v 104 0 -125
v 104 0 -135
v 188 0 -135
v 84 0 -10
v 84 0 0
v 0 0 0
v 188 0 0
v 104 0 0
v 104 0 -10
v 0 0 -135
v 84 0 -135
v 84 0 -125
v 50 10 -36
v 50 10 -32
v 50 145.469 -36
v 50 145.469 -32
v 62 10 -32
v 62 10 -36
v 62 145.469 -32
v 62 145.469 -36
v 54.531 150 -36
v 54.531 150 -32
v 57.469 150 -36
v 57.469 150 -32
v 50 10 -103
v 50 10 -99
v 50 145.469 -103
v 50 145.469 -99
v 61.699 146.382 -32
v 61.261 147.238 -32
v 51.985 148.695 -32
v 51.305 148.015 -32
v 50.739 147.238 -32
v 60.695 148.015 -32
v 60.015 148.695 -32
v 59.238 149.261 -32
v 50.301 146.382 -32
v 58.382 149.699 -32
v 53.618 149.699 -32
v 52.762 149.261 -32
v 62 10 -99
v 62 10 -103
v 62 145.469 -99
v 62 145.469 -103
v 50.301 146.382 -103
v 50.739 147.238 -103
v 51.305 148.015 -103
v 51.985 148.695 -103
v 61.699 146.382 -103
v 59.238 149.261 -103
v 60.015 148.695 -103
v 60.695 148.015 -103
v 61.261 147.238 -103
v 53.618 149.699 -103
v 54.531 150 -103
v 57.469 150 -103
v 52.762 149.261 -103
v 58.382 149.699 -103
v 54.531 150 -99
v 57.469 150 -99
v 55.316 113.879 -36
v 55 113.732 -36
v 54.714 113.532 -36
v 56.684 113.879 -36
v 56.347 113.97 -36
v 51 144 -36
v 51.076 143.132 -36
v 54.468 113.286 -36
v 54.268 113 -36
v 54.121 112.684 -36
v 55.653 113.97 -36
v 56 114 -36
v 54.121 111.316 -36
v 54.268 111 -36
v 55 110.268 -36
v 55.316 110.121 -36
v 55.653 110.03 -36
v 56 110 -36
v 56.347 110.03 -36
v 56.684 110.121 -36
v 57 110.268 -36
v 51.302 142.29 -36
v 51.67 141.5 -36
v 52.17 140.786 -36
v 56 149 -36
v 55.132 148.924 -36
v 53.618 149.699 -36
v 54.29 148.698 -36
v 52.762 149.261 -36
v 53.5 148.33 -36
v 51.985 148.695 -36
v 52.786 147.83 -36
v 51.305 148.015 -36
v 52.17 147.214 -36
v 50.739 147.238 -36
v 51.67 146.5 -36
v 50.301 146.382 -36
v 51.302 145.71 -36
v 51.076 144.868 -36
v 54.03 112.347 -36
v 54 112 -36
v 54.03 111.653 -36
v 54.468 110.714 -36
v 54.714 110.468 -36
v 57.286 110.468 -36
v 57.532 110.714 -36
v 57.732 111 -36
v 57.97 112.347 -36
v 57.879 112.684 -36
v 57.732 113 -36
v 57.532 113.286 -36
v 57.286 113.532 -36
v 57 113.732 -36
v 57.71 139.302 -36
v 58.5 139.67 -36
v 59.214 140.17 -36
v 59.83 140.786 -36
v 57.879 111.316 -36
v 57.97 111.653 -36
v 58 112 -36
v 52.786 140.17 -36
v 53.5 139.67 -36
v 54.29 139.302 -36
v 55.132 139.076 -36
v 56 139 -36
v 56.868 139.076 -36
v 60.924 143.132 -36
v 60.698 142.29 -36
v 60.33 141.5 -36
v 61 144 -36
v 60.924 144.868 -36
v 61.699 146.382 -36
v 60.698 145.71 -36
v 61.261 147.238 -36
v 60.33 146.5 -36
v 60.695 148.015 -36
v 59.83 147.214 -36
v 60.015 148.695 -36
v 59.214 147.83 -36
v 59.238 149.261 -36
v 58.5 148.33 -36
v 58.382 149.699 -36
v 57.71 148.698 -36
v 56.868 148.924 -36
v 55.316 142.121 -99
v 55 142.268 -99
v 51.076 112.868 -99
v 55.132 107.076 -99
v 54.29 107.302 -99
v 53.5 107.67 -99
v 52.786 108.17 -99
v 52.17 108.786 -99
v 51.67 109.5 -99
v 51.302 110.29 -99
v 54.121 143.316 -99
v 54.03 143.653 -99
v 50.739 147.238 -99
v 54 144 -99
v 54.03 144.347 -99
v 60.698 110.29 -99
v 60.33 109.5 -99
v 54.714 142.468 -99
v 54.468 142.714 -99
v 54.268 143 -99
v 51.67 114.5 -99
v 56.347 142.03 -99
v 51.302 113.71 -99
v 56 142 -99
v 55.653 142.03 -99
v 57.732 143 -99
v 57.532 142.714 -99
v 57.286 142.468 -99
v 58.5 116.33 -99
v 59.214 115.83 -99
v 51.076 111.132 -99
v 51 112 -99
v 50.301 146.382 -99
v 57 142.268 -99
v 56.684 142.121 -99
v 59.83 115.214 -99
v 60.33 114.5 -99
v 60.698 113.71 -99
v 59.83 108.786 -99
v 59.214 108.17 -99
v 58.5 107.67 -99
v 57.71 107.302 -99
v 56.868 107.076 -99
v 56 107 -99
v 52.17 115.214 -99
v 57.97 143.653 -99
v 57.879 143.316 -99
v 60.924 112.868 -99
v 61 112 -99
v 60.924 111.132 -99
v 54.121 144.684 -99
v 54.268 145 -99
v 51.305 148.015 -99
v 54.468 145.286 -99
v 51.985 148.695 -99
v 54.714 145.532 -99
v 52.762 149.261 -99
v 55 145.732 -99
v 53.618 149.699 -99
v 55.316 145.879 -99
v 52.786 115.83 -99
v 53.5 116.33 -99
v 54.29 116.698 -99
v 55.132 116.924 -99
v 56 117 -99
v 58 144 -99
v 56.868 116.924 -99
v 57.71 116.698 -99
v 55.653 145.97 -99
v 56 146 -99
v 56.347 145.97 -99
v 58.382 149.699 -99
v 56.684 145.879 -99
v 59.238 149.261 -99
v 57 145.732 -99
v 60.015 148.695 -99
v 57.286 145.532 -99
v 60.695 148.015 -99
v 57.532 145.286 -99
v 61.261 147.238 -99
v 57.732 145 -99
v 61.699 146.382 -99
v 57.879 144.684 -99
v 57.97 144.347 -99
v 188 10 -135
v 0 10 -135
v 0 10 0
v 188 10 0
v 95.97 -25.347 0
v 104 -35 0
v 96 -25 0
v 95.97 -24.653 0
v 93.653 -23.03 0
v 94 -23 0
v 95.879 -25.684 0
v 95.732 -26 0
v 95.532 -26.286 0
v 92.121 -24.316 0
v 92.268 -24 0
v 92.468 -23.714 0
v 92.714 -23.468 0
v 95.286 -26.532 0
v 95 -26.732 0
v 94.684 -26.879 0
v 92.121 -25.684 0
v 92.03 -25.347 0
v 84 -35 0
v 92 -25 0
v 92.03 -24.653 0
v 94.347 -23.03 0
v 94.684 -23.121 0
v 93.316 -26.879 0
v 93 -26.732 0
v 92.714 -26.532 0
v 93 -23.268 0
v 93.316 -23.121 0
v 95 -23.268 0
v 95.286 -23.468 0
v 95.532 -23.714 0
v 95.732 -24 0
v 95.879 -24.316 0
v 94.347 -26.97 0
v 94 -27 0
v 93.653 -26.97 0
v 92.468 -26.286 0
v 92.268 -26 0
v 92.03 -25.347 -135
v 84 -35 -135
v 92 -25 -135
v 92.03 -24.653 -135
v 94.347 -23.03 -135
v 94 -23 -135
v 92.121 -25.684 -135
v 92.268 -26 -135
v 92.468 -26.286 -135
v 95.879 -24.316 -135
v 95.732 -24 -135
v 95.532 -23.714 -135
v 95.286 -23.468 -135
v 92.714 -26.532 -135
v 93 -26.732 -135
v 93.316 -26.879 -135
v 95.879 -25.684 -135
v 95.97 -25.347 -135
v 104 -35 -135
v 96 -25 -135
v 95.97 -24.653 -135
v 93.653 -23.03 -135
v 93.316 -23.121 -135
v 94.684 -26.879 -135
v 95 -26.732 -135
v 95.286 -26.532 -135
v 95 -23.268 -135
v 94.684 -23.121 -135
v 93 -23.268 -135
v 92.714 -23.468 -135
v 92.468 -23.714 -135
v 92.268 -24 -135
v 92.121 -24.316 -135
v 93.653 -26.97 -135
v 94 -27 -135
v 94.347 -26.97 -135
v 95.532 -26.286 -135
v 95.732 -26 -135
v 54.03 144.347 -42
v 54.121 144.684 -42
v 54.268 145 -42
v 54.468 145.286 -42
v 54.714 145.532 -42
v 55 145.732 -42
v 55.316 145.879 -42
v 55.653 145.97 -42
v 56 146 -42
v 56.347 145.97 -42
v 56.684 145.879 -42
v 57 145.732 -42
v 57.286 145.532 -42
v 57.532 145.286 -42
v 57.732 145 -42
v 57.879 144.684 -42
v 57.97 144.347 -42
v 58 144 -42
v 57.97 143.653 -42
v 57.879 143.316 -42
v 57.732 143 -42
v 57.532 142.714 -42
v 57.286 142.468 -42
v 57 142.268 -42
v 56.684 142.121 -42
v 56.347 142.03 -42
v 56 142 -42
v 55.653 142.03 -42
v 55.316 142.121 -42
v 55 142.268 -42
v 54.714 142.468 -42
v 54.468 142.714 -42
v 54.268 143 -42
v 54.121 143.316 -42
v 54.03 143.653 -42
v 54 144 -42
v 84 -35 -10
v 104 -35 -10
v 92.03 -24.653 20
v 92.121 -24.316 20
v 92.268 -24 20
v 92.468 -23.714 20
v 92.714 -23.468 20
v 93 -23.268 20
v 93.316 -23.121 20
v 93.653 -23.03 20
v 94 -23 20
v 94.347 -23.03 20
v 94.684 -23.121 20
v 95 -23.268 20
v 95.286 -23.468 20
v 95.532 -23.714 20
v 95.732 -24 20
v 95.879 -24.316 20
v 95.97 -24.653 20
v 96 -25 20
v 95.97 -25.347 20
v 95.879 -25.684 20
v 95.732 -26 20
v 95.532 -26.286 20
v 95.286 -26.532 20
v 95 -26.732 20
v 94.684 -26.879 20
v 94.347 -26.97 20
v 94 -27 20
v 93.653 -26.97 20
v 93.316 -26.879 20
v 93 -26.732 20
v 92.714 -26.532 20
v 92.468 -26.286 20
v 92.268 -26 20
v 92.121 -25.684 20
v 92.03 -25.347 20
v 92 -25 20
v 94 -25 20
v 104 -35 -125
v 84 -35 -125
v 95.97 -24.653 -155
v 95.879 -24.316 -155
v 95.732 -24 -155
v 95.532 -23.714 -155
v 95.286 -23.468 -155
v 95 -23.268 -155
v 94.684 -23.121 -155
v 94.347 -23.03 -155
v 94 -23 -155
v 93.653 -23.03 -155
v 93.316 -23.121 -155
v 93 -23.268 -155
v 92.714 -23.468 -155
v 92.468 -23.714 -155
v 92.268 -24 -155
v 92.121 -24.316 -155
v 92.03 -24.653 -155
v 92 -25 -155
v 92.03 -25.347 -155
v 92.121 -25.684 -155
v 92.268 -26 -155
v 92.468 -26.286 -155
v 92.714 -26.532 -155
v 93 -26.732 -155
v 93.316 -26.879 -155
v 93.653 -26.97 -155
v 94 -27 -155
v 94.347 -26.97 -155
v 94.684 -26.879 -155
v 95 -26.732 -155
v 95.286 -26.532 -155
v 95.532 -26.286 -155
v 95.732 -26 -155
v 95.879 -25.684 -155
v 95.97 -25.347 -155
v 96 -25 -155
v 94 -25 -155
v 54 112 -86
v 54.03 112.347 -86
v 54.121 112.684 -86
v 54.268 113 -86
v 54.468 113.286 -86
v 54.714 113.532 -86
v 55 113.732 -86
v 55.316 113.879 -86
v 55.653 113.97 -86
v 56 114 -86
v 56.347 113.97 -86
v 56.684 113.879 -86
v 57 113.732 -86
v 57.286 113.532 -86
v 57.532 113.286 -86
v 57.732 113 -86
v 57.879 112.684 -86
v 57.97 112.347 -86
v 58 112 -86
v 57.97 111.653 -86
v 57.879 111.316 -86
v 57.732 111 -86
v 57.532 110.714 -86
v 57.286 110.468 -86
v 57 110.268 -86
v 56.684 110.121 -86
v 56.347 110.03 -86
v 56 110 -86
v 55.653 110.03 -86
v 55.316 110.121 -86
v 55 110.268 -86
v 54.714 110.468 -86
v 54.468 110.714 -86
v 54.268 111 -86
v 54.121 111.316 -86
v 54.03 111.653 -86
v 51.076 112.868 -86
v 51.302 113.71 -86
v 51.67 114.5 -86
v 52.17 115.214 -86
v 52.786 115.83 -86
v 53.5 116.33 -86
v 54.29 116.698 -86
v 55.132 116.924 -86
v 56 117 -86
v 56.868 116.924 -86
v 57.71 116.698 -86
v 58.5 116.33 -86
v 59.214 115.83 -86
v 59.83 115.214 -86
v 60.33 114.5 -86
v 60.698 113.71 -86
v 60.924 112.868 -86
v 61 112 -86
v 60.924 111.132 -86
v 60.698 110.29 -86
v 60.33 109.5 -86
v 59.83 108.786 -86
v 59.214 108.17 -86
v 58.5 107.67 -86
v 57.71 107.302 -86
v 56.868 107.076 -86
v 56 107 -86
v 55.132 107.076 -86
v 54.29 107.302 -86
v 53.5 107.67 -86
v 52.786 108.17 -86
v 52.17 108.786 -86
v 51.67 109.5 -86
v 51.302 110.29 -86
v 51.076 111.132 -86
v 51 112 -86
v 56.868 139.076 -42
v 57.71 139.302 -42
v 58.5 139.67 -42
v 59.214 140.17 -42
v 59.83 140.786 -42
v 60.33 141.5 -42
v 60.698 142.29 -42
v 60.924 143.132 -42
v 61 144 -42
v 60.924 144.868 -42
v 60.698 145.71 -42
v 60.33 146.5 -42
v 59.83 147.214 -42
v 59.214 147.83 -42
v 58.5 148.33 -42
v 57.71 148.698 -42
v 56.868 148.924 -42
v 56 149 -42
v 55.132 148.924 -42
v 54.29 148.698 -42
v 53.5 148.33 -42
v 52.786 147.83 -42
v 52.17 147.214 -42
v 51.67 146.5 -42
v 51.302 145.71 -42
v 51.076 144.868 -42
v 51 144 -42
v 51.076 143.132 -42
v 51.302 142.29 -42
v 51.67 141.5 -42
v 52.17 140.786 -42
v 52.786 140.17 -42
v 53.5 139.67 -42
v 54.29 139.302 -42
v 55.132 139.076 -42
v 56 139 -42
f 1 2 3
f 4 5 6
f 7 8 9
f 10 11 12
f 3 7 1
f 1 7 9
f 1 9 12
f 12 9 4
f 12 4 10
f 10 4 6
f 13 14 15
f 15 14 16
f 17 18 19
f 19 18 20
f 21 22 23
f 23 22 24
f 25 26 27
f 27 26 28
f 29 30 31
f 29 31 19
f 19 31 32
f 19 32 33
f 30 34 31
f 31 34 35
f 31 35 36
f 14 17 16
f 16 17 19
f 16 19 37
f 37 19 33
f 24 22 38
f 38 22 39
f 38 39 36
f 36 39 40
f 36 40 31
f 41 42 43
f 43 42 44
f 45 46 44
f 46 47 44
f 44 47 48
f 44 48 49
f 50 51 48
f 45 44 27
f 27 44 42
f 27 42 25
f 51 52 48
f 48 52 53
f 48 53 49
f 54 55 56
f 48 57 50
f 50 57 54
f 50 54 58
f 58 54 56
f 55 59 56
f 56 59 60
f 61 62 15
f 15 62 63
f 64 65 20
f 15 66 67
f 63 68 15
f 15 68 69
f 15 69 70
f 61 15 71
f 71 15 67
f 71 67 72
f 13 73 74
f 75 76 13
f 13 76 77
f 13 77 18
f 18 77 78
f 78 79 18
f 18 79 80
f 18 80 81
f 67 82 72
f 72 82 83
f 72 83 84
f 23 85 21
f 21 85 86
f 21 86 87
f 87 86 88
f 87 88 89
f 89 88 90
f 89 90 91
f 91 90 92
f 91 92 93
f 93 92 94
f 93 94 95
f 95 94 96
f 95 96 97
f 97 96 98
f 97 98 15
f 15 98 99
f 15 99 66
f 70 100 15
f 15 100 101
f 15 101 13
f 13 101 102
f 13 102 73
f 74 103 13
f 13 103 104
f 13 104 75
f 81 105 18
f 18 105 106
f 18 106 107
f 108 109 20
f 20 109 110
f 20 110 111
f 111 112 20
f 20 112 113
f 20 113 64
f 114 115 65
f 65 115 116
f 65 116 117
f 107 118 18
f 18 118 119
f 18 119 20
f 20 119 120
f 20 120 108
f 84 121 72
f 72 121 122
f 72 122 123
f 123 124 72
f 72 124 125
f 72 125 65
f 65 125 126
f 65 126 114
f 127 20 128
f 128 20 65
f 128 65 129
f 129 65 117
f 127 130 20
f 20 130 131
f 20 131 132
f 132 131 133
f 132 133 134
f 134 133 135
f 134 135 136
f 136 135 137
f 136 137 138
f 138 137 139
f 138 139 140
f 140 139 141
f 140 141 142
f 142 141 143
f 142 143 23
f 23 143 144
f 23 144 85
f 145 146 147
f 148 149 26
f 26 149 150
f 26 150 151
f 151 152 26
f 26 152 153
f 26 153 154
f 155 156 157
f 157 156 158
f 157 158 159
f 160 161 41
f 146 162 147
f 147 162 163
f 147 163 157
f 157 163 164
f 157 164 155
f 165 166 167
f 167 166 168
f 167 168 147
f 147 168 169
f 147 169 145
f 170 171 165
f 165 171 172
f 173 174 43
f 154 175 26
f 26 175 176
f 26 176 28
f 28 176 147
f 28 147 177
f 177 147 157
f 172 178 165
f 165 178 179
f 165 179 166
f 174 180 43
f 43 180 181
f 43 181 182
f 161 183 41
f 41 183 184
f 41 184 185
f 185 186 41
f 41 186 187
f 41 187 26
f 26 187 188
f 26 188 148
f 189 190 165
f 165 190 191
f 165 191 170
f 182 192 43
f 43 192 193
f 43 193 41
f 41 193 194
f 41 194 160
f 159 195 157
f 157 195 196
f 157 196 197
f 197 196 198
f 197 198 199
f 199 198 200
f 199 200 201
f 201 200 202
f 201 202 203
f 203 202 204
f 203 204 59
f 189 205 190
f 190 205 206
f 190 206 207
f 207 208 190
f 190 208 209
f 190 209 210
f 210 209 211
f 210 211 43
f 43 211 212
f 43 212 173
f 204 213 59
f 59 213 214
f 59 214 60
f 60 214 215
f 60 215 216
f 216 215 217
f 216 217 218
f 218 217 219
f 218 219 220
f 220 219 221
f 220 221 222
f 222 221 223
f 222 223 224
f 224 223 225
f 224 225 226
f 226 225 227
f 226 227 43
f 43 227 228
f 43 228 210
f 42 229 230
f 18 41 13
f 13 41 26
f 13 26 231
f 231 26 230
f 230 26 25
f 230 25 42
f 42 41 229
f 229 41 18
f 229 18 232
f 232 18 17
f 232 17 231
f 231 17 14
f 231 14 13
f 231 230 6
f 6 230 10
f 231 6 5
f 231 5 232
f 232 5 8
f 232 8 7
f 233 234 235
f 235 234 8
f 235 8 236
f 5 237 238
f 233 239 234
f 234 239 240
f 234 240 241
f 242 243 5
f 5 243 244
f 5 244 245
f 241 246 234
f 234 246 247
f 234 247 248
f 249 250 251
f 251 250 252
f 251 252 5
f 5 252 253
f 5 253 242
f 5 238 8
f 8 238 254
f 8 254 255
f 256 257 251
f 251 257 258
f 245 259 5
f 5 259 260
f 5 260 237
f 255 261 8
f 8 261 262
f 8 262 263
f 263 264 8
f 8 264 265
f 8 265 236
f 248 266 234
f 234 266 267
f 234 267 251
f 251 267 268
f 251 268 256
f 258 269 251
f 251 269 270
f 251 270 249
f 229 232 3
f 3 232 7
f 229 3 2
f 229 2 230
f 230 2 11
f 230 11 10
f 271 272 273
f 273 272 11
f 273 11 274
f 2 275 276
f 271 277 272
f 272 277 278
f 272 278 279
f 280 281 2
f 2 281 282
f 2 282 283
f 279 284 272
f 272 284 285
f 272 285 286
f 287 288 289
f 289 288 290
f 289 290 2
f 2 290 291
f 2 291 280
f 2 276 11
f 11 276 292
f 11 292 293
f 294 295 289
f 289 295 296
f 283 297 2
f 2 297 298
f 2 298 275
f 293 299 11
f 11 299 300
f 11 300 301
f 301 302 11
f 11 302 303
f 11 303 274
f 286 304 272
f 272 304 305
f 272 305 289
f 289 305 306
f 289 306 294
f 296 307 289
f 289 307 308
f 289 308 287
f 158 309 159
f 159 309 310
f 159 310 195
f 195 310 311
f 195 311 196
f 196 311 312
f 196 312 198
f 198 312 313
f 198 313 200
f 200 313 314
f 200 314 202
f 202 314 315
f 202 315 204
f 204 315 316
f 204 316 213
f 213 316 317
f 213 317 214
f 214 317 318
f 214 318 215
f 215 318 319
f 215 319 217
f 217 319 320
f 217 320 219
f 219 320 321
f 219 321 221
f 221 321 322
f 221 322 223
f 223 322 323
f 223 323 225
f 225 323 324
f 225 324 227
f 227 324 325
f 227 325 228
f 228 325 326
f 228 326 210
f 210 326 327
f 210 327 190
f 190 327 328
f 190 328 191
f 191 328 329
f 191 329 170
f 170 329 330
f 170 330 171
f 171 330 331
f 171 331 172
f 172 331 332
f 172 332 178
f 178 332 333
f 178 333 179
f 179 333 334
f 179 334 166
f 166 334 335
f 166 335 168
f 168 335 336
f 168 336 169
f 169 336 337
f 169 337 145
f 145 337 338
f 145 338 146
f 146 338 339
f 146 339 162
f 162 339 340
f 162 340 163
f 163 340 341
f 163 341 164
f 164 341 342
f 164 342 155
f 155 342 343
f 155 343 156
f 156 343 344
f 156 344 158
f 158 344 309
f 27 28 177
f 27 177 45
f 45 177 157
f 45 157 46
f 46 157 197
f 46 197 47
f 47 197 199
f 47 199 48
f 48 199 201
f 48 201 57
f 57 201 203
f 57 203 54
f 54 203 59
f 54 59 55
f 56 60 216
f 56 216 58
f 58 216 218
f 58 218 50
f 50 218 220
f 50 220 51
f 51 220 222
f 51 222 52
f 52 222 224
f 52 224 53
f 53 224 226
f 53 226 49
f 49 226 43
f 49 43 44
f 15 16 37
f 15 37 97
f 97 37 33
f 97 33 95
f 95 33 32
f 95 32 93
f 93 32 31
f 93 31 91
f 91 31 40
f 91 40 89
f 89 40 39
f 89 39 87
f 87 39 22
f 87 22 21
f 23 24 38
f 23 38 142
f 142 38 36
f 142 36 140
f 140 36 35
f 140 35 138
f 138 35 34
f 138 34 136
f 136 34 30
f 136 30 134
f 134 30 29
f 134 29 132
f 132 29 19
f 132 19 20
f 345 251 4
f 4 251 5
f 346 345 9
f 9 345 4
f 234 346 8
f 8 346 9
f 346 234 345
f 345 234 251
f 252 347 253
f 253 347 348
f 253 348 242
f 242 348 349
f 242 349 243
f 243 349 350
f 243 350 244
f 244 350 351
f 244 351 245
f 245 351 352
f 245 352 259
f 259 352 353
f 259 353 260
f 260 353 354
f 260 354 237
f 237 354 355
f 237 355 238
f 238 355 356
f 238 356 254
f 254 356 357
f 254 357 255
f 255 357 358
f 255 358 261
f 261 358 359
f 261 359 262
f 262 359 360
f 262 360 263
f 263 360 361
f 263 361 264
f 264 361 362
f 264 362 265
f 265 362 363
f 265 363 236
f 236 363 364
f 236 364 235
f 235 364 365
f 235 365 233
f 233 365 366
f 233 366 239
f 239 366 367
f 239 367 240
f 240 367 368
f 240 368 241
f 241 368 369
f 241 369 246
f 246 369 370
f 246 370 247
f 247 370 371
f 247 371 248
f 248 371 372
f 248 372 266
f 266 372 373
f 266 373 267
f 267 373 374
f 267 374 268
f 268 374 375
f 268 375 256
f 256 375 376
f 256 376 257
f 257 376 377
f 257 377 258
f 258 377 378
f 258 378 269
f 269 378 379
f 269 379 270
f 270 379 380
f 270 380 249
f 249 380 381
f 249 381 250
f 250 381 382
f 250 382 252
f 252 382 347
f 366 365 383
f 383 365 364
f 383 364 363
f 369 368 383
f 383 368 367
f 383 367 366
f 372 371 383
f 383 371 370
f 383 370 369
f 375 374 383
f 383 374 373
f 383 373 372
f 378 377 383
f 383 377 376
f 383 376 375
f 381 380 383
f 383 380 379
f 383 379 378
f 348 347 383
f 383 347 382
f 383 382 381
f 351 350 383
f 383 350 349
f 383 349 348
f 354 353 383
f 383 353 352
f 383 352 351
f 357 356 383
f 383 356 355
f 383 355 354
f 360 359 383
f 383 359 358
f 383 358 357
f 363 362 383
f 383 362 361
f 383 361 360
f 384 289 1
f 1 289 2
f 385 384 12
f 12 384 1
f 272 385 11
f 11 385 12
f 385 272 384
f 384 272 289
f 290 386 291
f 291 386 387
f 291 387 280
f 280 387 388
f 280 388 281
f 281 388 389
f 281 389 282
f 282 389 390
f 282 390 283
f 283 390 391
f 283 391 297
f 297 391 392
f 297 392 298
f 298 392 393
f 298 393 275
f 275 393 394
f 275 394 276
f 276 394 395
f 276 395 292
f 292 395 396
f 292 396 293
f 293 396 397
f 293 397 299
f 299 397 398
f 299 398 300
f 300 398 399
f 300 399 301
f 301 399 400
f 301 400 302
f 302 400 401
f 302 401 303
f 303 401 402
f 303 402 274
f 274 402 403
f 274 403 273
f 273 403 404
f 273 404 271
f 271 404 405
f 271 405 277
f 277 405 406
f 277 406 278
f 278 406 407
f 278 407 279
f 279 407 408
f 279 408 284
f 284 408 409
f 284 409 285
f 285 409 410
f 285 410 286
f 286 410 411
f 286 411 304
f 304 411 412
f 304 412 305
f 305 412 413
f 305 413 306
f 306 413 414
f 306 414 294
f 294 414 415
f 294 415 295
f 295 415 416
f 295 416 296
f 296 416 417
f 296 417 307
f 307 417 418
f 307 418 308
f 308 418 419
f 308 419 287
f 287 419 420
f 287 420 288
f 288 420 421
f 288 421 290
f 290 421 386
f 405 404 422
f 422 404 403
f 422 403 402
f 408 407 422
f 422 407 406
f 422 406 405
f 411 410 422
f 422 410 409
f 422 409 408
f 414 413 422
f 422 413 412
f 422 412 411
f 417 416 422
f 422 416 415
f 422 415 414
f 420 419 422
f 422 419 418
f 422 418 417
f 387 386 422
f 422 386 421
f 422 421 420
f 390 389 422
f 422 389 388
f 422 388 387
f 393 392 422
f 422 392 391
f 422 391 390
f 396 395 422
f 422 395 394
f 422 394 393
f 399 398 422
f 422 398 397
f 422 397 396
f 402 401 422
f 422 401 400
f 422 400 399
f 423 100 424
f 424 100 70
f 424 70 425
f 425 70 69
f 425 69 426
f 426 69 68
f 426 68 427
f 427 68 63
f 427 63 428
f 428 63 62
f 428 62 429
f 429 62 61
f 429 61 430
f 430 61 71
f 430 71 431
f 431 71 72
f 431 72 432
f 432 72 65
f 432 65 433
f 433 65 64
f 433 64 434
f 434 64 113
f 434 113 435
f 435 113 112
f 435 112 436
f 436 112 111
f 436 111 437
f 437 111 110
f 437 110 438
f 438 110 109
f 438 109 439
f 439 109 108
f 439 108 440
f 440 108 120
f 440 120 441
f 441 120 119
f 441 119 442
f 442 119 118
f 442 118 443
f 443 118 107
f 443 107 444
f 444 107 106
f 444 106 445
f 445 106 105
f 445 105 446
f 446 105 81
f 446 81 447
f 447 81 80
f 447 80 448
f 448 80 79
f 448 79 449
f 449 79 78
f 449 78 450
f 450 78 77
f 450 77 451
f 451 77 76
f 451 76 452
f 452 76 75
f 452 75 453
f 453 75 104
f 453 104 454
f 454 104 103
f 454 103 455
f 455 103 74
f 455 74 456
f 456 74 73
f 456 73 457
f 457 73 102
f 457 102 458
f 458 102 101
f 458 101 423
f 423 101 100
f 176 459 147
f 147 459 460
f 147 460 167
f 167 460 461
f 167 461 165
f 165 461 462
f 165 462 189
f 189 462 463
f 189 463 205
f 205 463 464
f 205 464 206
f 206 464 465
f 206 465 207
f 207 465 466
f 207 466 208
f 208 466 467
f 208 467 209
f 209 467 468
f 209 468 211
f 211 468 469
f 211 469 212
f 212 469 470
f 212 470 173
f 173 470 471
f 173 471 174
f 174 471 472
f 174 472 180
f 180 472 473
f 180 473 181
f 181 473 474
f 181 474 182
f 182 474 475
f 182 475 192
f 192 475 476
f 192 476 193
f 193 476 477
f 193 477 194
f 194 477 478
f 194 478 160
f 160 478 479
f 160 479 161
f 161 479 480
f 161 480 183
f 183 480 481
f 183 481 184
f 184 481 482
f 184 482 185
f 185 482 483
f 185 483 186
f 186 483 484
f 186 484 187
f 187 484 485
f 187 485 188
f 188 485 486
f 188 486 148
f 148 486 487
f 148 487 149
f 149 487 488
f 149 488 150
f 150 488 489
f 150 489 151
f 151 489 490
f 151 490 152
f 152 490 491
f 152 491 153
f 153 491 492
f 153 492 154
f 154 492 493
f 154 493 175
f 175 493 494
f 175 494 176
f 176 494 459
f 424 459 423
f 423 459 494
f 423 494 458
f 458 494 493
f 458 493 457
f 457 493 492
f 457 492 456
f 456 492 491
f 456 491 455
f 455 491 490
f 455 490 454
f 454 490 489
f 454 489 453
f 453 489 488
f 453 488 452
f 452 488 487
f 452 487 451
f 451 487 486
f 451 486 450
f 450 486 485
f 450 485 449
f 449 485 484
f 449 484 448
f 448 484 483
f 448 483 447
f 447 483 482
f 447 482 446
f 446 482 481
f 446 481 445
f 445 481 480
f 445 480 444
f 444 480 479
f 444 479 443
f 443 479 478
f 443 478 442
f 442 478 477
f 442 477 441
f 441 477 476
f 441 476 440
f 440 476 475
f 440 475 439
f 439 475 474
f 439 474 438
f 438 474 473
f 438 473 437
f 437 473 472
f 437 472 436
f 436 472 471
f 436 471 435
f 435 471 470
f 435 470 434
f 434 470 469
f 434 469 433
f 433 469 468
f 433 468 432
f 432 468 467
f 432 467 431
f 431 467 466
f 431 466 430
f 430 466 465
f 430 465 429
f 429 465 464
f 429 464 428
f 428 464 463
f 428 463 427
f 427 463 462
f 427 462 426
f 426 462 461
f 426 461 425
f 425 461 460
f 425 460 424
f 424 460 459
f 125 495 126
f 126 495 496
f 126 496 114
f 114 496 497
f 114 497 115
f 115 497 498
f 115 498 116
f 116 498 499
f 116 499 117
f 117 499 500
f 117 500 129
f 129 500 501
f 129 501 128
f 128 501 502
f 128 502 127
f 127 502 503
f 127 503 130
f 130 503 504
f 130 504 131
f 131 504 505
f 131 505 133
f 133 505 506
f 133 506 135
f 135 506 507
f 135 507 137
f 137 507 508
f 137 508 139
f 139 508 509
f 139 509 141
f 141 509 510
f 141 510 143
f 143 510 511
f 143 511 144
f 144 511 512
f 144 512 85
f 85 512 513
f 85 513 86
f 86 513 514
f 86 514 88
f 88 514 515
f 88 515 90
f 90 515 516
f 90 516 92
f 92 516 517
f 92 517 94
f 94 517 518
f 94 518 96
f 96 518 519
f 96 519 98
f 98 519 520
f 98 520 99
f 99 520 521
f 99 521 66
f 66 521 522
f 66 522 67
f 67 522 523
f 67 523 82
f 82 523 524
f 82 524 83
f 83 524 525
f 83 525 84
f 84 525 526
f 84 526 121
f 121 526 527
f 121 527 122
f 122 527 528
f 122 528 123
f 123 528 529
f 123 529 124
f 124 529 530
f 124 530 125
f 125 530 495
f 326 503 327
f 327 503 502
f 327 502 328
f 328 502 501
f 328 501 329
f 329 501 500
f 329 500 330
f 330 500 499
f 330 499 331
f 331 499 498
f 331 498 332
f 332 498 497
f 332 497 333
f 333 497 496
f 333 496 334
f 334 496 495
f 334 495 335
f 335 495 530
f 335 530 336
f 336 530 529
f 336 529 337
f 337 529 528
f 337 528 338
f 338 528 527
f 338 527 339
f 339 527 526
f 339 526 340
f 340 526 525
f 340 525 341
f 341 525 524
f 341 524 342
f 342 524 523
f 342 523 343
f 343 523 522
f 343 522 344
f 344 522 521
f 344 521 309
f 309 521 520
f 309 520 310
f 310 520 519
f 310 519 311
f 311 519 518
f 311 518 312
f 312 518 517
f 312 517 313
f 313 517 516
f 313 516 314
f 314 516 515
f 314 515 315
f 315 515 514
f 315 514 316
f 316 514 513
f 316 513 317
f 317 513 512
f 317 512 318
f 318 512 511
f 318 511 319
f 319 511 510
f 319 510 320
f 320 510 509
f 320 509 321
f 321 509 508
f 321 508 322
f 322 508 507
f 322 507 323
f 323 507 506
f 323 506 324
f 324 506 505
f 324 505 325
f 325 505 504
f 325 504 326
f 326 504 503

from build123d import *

# Parameters (mm, degrees)
ESQUISSE1_W             = 188
ESQUISSE1_H             = 135
BOSS_EXTRU_1_DEPTH      = 10
ESQUISSE2_W             = 12
ESQUISSE2_H             = 71
BOSS_EXTRU_2_DEPTH      = 140
ESQUISSE4_W             = 63
ESQUISSE4_H             = 140
ENL_V_MAT_EXTRU_1_DEPTH = 140
ESQUISSE6_R             = 2
BOSS_EXTRU_3_DEPTH      = 67
ENL_V_MAT_EXTRU_2_DEPTH = 262.635242274
ESQUISSE11_W            = 20
ESQUISSE11_H            = 10
BOSS_EXTRU_4_DEPTH      = 35
ESQUISSE12_R            = 2
BOSS_EXTRU_5_DEPTH      = 20
ESQUISSE13_W            = 20
ESQUISSE13_H            = 10
BOSS_EXTRU_6_DEPTH      = 35
BOSS_EXTRU_7_START      = 20
ESQUISSE14_R            = 2
BOSS_EXTRU_7_DEPTH      = 20
ESQUISSE15_R            = 2
BOSS_EXTRU_8_DEPTH      = 67
ESQUISSE16_R            = 5
BOSS_EXTRU_9_DEPTH      = 13
ESQUISSE17_R            = 5
BOSS_EXTRU_10_DEPTH     = 6


with BuildPart() as part:
    # Esquisse1 → Boss.-Extru.1 (new body)
    with BuildSketch(Plane(origin=(0, 0, 0), x_dir=(1, 0, 0), z_dir=(0, 1, 0))):
        with Locations((94, 67.5)):
            Rectangle(ESQUISSE1_W, ESQUISSE1_H)
    extrude(amount=BOSS_EXTRU_1_DEPTH)

    # Esquisse2 → Boss.-Extru.2 (add)
    with BuildSketch(Plane(origin=(0, 10, 0), x_dir=(1, 0, 0), z_dir=(0, 1, 0))):
        with Locations((56, 67.5)):
            Rectangle(ESQUISSE2_W, ESQUISSE2_H)
    extrude(amount=BOSS_EXTRU_2_DEPTH)

    # Esquisse4 → Enlèv. mat.-Extru.1 (cut)
    with BuildSketch(Plane(origin=(62, 0, 0), x_dir=(0, 0, -1), z_dir=(1, 0, 0))):
        with Locations((67.5, 80)):
            Rectangle(ESQUISSE4_W, ESQUISSE4_H)
    extrude(amount=-ENL_V_MAT_EXTRU_1_DEPTH, mode=Mode.SUBTRACT)

    # Esquisse6 → Boss.-Extru.3 (add)
    with BuildSketch(Plane.XY.offset(-99)):
        with Locations(Location((56, 144, 0), (0, 0, 90))):
            Circle(ESQUISSE6_R)
    extrude(amount=BOSS_EXTRU_3_DEPTH)

    # Esquisse7 → Enlèv. mat.-Extru.2 (cut, through all)
    with BuildSketch(Plane.XY.offset(-32)):
        with BuildLine():
            Line((50, 145.469087673), (50, 152.744377171))
            Line((50, 152.744377171), (62, 152.744377171))
            Line((62, 152.744377171), (62, 145.469087673))
            ThreePointArc((62, 145.469087673), (56, 150.177233895), (50, 145.469087673))
        make_face()
    extrude(amount=-ENL_V_MAT_EXTRU_2_DEPTH, mode=Mode.SUBTRACT)

    # Esquisse11 → Boss.-Extru.4 (add)
    with BuildSketch(Plane.XZ):
        with Locations((94, -5)):
            Rectangle(ESQUISSE11_W, ESQUISSE11_H)
    extrude(amount=BOSS_EXTRU_4_DEPTH)

    # Esquisse12 → Boss.-Extru.5 (add)
    with BuildSketch(Plane.XY):
        with Locations(Location((94, -25, 0), (0, 0, 180))):
            Circle(ESQUISSE12_R)
    extrude(amount=BOSS_EXTRU_5_DEPTH)

    # Esquisse13 → Boss.-Extru.6 (add)
    with BuildSketch(Plane.XZ):
        with Locations((94, -130)):
            Rectangle(ESQUISSE13_W, ESQUISSE13_H)
    extrude(amount=BOSS_EXTRU_6_DEPTH)

    # Esquisse14 → Boss.-Extru.7 (add)
    with BuildSketch(Plane(origin=(0, 0, -135), x_dir=(-1, 0, 0), z_dir=(0, 0, -1)).offset(BOSS_EXTRU_7_START)):
        with Locations((-94, -25)):
            Circle(ESQUISSE14_R)
    extrude(amount=-BOSS_EXTRU_7_DEPTH)

    # Esquisse15 → Boss.-Extru.8 (add)
    with BuildSketch(Plane.XY.offset(-99)):
        with Locations(Location((56, 112, 0), (0, 0, 90))):
            Circle(ESQUISSE15_R)
    extrude(amount=BOSS_EXTRU_8_DEPTH)

    # Esquisse16 → Boss.-Extru.9 (add)
    with BuildSketch(Plane.XY.offset(-99)):
        with Locations(Location((56, 112, 0), (0, 0, 180))):
            Circle(ESQUISSE16_R)
    extrude(amount=BOSS_EXTRU_9_DEPTH)

    # Esquisse17 → Boss.-Extru.10 (add)
    with BuildSketch(Plane(origin=(0, 0, -36), x_dir=(-1, 0, 0), z_dir=(0, 0, -1))):
        with Locations(Location((-56, 144, 0), (0, 0, 270))):
            Circle(ESQUISSE17_R)
    extrude(amount=BOSS_EXTRU_10_DEPTH)


solid = part.part
